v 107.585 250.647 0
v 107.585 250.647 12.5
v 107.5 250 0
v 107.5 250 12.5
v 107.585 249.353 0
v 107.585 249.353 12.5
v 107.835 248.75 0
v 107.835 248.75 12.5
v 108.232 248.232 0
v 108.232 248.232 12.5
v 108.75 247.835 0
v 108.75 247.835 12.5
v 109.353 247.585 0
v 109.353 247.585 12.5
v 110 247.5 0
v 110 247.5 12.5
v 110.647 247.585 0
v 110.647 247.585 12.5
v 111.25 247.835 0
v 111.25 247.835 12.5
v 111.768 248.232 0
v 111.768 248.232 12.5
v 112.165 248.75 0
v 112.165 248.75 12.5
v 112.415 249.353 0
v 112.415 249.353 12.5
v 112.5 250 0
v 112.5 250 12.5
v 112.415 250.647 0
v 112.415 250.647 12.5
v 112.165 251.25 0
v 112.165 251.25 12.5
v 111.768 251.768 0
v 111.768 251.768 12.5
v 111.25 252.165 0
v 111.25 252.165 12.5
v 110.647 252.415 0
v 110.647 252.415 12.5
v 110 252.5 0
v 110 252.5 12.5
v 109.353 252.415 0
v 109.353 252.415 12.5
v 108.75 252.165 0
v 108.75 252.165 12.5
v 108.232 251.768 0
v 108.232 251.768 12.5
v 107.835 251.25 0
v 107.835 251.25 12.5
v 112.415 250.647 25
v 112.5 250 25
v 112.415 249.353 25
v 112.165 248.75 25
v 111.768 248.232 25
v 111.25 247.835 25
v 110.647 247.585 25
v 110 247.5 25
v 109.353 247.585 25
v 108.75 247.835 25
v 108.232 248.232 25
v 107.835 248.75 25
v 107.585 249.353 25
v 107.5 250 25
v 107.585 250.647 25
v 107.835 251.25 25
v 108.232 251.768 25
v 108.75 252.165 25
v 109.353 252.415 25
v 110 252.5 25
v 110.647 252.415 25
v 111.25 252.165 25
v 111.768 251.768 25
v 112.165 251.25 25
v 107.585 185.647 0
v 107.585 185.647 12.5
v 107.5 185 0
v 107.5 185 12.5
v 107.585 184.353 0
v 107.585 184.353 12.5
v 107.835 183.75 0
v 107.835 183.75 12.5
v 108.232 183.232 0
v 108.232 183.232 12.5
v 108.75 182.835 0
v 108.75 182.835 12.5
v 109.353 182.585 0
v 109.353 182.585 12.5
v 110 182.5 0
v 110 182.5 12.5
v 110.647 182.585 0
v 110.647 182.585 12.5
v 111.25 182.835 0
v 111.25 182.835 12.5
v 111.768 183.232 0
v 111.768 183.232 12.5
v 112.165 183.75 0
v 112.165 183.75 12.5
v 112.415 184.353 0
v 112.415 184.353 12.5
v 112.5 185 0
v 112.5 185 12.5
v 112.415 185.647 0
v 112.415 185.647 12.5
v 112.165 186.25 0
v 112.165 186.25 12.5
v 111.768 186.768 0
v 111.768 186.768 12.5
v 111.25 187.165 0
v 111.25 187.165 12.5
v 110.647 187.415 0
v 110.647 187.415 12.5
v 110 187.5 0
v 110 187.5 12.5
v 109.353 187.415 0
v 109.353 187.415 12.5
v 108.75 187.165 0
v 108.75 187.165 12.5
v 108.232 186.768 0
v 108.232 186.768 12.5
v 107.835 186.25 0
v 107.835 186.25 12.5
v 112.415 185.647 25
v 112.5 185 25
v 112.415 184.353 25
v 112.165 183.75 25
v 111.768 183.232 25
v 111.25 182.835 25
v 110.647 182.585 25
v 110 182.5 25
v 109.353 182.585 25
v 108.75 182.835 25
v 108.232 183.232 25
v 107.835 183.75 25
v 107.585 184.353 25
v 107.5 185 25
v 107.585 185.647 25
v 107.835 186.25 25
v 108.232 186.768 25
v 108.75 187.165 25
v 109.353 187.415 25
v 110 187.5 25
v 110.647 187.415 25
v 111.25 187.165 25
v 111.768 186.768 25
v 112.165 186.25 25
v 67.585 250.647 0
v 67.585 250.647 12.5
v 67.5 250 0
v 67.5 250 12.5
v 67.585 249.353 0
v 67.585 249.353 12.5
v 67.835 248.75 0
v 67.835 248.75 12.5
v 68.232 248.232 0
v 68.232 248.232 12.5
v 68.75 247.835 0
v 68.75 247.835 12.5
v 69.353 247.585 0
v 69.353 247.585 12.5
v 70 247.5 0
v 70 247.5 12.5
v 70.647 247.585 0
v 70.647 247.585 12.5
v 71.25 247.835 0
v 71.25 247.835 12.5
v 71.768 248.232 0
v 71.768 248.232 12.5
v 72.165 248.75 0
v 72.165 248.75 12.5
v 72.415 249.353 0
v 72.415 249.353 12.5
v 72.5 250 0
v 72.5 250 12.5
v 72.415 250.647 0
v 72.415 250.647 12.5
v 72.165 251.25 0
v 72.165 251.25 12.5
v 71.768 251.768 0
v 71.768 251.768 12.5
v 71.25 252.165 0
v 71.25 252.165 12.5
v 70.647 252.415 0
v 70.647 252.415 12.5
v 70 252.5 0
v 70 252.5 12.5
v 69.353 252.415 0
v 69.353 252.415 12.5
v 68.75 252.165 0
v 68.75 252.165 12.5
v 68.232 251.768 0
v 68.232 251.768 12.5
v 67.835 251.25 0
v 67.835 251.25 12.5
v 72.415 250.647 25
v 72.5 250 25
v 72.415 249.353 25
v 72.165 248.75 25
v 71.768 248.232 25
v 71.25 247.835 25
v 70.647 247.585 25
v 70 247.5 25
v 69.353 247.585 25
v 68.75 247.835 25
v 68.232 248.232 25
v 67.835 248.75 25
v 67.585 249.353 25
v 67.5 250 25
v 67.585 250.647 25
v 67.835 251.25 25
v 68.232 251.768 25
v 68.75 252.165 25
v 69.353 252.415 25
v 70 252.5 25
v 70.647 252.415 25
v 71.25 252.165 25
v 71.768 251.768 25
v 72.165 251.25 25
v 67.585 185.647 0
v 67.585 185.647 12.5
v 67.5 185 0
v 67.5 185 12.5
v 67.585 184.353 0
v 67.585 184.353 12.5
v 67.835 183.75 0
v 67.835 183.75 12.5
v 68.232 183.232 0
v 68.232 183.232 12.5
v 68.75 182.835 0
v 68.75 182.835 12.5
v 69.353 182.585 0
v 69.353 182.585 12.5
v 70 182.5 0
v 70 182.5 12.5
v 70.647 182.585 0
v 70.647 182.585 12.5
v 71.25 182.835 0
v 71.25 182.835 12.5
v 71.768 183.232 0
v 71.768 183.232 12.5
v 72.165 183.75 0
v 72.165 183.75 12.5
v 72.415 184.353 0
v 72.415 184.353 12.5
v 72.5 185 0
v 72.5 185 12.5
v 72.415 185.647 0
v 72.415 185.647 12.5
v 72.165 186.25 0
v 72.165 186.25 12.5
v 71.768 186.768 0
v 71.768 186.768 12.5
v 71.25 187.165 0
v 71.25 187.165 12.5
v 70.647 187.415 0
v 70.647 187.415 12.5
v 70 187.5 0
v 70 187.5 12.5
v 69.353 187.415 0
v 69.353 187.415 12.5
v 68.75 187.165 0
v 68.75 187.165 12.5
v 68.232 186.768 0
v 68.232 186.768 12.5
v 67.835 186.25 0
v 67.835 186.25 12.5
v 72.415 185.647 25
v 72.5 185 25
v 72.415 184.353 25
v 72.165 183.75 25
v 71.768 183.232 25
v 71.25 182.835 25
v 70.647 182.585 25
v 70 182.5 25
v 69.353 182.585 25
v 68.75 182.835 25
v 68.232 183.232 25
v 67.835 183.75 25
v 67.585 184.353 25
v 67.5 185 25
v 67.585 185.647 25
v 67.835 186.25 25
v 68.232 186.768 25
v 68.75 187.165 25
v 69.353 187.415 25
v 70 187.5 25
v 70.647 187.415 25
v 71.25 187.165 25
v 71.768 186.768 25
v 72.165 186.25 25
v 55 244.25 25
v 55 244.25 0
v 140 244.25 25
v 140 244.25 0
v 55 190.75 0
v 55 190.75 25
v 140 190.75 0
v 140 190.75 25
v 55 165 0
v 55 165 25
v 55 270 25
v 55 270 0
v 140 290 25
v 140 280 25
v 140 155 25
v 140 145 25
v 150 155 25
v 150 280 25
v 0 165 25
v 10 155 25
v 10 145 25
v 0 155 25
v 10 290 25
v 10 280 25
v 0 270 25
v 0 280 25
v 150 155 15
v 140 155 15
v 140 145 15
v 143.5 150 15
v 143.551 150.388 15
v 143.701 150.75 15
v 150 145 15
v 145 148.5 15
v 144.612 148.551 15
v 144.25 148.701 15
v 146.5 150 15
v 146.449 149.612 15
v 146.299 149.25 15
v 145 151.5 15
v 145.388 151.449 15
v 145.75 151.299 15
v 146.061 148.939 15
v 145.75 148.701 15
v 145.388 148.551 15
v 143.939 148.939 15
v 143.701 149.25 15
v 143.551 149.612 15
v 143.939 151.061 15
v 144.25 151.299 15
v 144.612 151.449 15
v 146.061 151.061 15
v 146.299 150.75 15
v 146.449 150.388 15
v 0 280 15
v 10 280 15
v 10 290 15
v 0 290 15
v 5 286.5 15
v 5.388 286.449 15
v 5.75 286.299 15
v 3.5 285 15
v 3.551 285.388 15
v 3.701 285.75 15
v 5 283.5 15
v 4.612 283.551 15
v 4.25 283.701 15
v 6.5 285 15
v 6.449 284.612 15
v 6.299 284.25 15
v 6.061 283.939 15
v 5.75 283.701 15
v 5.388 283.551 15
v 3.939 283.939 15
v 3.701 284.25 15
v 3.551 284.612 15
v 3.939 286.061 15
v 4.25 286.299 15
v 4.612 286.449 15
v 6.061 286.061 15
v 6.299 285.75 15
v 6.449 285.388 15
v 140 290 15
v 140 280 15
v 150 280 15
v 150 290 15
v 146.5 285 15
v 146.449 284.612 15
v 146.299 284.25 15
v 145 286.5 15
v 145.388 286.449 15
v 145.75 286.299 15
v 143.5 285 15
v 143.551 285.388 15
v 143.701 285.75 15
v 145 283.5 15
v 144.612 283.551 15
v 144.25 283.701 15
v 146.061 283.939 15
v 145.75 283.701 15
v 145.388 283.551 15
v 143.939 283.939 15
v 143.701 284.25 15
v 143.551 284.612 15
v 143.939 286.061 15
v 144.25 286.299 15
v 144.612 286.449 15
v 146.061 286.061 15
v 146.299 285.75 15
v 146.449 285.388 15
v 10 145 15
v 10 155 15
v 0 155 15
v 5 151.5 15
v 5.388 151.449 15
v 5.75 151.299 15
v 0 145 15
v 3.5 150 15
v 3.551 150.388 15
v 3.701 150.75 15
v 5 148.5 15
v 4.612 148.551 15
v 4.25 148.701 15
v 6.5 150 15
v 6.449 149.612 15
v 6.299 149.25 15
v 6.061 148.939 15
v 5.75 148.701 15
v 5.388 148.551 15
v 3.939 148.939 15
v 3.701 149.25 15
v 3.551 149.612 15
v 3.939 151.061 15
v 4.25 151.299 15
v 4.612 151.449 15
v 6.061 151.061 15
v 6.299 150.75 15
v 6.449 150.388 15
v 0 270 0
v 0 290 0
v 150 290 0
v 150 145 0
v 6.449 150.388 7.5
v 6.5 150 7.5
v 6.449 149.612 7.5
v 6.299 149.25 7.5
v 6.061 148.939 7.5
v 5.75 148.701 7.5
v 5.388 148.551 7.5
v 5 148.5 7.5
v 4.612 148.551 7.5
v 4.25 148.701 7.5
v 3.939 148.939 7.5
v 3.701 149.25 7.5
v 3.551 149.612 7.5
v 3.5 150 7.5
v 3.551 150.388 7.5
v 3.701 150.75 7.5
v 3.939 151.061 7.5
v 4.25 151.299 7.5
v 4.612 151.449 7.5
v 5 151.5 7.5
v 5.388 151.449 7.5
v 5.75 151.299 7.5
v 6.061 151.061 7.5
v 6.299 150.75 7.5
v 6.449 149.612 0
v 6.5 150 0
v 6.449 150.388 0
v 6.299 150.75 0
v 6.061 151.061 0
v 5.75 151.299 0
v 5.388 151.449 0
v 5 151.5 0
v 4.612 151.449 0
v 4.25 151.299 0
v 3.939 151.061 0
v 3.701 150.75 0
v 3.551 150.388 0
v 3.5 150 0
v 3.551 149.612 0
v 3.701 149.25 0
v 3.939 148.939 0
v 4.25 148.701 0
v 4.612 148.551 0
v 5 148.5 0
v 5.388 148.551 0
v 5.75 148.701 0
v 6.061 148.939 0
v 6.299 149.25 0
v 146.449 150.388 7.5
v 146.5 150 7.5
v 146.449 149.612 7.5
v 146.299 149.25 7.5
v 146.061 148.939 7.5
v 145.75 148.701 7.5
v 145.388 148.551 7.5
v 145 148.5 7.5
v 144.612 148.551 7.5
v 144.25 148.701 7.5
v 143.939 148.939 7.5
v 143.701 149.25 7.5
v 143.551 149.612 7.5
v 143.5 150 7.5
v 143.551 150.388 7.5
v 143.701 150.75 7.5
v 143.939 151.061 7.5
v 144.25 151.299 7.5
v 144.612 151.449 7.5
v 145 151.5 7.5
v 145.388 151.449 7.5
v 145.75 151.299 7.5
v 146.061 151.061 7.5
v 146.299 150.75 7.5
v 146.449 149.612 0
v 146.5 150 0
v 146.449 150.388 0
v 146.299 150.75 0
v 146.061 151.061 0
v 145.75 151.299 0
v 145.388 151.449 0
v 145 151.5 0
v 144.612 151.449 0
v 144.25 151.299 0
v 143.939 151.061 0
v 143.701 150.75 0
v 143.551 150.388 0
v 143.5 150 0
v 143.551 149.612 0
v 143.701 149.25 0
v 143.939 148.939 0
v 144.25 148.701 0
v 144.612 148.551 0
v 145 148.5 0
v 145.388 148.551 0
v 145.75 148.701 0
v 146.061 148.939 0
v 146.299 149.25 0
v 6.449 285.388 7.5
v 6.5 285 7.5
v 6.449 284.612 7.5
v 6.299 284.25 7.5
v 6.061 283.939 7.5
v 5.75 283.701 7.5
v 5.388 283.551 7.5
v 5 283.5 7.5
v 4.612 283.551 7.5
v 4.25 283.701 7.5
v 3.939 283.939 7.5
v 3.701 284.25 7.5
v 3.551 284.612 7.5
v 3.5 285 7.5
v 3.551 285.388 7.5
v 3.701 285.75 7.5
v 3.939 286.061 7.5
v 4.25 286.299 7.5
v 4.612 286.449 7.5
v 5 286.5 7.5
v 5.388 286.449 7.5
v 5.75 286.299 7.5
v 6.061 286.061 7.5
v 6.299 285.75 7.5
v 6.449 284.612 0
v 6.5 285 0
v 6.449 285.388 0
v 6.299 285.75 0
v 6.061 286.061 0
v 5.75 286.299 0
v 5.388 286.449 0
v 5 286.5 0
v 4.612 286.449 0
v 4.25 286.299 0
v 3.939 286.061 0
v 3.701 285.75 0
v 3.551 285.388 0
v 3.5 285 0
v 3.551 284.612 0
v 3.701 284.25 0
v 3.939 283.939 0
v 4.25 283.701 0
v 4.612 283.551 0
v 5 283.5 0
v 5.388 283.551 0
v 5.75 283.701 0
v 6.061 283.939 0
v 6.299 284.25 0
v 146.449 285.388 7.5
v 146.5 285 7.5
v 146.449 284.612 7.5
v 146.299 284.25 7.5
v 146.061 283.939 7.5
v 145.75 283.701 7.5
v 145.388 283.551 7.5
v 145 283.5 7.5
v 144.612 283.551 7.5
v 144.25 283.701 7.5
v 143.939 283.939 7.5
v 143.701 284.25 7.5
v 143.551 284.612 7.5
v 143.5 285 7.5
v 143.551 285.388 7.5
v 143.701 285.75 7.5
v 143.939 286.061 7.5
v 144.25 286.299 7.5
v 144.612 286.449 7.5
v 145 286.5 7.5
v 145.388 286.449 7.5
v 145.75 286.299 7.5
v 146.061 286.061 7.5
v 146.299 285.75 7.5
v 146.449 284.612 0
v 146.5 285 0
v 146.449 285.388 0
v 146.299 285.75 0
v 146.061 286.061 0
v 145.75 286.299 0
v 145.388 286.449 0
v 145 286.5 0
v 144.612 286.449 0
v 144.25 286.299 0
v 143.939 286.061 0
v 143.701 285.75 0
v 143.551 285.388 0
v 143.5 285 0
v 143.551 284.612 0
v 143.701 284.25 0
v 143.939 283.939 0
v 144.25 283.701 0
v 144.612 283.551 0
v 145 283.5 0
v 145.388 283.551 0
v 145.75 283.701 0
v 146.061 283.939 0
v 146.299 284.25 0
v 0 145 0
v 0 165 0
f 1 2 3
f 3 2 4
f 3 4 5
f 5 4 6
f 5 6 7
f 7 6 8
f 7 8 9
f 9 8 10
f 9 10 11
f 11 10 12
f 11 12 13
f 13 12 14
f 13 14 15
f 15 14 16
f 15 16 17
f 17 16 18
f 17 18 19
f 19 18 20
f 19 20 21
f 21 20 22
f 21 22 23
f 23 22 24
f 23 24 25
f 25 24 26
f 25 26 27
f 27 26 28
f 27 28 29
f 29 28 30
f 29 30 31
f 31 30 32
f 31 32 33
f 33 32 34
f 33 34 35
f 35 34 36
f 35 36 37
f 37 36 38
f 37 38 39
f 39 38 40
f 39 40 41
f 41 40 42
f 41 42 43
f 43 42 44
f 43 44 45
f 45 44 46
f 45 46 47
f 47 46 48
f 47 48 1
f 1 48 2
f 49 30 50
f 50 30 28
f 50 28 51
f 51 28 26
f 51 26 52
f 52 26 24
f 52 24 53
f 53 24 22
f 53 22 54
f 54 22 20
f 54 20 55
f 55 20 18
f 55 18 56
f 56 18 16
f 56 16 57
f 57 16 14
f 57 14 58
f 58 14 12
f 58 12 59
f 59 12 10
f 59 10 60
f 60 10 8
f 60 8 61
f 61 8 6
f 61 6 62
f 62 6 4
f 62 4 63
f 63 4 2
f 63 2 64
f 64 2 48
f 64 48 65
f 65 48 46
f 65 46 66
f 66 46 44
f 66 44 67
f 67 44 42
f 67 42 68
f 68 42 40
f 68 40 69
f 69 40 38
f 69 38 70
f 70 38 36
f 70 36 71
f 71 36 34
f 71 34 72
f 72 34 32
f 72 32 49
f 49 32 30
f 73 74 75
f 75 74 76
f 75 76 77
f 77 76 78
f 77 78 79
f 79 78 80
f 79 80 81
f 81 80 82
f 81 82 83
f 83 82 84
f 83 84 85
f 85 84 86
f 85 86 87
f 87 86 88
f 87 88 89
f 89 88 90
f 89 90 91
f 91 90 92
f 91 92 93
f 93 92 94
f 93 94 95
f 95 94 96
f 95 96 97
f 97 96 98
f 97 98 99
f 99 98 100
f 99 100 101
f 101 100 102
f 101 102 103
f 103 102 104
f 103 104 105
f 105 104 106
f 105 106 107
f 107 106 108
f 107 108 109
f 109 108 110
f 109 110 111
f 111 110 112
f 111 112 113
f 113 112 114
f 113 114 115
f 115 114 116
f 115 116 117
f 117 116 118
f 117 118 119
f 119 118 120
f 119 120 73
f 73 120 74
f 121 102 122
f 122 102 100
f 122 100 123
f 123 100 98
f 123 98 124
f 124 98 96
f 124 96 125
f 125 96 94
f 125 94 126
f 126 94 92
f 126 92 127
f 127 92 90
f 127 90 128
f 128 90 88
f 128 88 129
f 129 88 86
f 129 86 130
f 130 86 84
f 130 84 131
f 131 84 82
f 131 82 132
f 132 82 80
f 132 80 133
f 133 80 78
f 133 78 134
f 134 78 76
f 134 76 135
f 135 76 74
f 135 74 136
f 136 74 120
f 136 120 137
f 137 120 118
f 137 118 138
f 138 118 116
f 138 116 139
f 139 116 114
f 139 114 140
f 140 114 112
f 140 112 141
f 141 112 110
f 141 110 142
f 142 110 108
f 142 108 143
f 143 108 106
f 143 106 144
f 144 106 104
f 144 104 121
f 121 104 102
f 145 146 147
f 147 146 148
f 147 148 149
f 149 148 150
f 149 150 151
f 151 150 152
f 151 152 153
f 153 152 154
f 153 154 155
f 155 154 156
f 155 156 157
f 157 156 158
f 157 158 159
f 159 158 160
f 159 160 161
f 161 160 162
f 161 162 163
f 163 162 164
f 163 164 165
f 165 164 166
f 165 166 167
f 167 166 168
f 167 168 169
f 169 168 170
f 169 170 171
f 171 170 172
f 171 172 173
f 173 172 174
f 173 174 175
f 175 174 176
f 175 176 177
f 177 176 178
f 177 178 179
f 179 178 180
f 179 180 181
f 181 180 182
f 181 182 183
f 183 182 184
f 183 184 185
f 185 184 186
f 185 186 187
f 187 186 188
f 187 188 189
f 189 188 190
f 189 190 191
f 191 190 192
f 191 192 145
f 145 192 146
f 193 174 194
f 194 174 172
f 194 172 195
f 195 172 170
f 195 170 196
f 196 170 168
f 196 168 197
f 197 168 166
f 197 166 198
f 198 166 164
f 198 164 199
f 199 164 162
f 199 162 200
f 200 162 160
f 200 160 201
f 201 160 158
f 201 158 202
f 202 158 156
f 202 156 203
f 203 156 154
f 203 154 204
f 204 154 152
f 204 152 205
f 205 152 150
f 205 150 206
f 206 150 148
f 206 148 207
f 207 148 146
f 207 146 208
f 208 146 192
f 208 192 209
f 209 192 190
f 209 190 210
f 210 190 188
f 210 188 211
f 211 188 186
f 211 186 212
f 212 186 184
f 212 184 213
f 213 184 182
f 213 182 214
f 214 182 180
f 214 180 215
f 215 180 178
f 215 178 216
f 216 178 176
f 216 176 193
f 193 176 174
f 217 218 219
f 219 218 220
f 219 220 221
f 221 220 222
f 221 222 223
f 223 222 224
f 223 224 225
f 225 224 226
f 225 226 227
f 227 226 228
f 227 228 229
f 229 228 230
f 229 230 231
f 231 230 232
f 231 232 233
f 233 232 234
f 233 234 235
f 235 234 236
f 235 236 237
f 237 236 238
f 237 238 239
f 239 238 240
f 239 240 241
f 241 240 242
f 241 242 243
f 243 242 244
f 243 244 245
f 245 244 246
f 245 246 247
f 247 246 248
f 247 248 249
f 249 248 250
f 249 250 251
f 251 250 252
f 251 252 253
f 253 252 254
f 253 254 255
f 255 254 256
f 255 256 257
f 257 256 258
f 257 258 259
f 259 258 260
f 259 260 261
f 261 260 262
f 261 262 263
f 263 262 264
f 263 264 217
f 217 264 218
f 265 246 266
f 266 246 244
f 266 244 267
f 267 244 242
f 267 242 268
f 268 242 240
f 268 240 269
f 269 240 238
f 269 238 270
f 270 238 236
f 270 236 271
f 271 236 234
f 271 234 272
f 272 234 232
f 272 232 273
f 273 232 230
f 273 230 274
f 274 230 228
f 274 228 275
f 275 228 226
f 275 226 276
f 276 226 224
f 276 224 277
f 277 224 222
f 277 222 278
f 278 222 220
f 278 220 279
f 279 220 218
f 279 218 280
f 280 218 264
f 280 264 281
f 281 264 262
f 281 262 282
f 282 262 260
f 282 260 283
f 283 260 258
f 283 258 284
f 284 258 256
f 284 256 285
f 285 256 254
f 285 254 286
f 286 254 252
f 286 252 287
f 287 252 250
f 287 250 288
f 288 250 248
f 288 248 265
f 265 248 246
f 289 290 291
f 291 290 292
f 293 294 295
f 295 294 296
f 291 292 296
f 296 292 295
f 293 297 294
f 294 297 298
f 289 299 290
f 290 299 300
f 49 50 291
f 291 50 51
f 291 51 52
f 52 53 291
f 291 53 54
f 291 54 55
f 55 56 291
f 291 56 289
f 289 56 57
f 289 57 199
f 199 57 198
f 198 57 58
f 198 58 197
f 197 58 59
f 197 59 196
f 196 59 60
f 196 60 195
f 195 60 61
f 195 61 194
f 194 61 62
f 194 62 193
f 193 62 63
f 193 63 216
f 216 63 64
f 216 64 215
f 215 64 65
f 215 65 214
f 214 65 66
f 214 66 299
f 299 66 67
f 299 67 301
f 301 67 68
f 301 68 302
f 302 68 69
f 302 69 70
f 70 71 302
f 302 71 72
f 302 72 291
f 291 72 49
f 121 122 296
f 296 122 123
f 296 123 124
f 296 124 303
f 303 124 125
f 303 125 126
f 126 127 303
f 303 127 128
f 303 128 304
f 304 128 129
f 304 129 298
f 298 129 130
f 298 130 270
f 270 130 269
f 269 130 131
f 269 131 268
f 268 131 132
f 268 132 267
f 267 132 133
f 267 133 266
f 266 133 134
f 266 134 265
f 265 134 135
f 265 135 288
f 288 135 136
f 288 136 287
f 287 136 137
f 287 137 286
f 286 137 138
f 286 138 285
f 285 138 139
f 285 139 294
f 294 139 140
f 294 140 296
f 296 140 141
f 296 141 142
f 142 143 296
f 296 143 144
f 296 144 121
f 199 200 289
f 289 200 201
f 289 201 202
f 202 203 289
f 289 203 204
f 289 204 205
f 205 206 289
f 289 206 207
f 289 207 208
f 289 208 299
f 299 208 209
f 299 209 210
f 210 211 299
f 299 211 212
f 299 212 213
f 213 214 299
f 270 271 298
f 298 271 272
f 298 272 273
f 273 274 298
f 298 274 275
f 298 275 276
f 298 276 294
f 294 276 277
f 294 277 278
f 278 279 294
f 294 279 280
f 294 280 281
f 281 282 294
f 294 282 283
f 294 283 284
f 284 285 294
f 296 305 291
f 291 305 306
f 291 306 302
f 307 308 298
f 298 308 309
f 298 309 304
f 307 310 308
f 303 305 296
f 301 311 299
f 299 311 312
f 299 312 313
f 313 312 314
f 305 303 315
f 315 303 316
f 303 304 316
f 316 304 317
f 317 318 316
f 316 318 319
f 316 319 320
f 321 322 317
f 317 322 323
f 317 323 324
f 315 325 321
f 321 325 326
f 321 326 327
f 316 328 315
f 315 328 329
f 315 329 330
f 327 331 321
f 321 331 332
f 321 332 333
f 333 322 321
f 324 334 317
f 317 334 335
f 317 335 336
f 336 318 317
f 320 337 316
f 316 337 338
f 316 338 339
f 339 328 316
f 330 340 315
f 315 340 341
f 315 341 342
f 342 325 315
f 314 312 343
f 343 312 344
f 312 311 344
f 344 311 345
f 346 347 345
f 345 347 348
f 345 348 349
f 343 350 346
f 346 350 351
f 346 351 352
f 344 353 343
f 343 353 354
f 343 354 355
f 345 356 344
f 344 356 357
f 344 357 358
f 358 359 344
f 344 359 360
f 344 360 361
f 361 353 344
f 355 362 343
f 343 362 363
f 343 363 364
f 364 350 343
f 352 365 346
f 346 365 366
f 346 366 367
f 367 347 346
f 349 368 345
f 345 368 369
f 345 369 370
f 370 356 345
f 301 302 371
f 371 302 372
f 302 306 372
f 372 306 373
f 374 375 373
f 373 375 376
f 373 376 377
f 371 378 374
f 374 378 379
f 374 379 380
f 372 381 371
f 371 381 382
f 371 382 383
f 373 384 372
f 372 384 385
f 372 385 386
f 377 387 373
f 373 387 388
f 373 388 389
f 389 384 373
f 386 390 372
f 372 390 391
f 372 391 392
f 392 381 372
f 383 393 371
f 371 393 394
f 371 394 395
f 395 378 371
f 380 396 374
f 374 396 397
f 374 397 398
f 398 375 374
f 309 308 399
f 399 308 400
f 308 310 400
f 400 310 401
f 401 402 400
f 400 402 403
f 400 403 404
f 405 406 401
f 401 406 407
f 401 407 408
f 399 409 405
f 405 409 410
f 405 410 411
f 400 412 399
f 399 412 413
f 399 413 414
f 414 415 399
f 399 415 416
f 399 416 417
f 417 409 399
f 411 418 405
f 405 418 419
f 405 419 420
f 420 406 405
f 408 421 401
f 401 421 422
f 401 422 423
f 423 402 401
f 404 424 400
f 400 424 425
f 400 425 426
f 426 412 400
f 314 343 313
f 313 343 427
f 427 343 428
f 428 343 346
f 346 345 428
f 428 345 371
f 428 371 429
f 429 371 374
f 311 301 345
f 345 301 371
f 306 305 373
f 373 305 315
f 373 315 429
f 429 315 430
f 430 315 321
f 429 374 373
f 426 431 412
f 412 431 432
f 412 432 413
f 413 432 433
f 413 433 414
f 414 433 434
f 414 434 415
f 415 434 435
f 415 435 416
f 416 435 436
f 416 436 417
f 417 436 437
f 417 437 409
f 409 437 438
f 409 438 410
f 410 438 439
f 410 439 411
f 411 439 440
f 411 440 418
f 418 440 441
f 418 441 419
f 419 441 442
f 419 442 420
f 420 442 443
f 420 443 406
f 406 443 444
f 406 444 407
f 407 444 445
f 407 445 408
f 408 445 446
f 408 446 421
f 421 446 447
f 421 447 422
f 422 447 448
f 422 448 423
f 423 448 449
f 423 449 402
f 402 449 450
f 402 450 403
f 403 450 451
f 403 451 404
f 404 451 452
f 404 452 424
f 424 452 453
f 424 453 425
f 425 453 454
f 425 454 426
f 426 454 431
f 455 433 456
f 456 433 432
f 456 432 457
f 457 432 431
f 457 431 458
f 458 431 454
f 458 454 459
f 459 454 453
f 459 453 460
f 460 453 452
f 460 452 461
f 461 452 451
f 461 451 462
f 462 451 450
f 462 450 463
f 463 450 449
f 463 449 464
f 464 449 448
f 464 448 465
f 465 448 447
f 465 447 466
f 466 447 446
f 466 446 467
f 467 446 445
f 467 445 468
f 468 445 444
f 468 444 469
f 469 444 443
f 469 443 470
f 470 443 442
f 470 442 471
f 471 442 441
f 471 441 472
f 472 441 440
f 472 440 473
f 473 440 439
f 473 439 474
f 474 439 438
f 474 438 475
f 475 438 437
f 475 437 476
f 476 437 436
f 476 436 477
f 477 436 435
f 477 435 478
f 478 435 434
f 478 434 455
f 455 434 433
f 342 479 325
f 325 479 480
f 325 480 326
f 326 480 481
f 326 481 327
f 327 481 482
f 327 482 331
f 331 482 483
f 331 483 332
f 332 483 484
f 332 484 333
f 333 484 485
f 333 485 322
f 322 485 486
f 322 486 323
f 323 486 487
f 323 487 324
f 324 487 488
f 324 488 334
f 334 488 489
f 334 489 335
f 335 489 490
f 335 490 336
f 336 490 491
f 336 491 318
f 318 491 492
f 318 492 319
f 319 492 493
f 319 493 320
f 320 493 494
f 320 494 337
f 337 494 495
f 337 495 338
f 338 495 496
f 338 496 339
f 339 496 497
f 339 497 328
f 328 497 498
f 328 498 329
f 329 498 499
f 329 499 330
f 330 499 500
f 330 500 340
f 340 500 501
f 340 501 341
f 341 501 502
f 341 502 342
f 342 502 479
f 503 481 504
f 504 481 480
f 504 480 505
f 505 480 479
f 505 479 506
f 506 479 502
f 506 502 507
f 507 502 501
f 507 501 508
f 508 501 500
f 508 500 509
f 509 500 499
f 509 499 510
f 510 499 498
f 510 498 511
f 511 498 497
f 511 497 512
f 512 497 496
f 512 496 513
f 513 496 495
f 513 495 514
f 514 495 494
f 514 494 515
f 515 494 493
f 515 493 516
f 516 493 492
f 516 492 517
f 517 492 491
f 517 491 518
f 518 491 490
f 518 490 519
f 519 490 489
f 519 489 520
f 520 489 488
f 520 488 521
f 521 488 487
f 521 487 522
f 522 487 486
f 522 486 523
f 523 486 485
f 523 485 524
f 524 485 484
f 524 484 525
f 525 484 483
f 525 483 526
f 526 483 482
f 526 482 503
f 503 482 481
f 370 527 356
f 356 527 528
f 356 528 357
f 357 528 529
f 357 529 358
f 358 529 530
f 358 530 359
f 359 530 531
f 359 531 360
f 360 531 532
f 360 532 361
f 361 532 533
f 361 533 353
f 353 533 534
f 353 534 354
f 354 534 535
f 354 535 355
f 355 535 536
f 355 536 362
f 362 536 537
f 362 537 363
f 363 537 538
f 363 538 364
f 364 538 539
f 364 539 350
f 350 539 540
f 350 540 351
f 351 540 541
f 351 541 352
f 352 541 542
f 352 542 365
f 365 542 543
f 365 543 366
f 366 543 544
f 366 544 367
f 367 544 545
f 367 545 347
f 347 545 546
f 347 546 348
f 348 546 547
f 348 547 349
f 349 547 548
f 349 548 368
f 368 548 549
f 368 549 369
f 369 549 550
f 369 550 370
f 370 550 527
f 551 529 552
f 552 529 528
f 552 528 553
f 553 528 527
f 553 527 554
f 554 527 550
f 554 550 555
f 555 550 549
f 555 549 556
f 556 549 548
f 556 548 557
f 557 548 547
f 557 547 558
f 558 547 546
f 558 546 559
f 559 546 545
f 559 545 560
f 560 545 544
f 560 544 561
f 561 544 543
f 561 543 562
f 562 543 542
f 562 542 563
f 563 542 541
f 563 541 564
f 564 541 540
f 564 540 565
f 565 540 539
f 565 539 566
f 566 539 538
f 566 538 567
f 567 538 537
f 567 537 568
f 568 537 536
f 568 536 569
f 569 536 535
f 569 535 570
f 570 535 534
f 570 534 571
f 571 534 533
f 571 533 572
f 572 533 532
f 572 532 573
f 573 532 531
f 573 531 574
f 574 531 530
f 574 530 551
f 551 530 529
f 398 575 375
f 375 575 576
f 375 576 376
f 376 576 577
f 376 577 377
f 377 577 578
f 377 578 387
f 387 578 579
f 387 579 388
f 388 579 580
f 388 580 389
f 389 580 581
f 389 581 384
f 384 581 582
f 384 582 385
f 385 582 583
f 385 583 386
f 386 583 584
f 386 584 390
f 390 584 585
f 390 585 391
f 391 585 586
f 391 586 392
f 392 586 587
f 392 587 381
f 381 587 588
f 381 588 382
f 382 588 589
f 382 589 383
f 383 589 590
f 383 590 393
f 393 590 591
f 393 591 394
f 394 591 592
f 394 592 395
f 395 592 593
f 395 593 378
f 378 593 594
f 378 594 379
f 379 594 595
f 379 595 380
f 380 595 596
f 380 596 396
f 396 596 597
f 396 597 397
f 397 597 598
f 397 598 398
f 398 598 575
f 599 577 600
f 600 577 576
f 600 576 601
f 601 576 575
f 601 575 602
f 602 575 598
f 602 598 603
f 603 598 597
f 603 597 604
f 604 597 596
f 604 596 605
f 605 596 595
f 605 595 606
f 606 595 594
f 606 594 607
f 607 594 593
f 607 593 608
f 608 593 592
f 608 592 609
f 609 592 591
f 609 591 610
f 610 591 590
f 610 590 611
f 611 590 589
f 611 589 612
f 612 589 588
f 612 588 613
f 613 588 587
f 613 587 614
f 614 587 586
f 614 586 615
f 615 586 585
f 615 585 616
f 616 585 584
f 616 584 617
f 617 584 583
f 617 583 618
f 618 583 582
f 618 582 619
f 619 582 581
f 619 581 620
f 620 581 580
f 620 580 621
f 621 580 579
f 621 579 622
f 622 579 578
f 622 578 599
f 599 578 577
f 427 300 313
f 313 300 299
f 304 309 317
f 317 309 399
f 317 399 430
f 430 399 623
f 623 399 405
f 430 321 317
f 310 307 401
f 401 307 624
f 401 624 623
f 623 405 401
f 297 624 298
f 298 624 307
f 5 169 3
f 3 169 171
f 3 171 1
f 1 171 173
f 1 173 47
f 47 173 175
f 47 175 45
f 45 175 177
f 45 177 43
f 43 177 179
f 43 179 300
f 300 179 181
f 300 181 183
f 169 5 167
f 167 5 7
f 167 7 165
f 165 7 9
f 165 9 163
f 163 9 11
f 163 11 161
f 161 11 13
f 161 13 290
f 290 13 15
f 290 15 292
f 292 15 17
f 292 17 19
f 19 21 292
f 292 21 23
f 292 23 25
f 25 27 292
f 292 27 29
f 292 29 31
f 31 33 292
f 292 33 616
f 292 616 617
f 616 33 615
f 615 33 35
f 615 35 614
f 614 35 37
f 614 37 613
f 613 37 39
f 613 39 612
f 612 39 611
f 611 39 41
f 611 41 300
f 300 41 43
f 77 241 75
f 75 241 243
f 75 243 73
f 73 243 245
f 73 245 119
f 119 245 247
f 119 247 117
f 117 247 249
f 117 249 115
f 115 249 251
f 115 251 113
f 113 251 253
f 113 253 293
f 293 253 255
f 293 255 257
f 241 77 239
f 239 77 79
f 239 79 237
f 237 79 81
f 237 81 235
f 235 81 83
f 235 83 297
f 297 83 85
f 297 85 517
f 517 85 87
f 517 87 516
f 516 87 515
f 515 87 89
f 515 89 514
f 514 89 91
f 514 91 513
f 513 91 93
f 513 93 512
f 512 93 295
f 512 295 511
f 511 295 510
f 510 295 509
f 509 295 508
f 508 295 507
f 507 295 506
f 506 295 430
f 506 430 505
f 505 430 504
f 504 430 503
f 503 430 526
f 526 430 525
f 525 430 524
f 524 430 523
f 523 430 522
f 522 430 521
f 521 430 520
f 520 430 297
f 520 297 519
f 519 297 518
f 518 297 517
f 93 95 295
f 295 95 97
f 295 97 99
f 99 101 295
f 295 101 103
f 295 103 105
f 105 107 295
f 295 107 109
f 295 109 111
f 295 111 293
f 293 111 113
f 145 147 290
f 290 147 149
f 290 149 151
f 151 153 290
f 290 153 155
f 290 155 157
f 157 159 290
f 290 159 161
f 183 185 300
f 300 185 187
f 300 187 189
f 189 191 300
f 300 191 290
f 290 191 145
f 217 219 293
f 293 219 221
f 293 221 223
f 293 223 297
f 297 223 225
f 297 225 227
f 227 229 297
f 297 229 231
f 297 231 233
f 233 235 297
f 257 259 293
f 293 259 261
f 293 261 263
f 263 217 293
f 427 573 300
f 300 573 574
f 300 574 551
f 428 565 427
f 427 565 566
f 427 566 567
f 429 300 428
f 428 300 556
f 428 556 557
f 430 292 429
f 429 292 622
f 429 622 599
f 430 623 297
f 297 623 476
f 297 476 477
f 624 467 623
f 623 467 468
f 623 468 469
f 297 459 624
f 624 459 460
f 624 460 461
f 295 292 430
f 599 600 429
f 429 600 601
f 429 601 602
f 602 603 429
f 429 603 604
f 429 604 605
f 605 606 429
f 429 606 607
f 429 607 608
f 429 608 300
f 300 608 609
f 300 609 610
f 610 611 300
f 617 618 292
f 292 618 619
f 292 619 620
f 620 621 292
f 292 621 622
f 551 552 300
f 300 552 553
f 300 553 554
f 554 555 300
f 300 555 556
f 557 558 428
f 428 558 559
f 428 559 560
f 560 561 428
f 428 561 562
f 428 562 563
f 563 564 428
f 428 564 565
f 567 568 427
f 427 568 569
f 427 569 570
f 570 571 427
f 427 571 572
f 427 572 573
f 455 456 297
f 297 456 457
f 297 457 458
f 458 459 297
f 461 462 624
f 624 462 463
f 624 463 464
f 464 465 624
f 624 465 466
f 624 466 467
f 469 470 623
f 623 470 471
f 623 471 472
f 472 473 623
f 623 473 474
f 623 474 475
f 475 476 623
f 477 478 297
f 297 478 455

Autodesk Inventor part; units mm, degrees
ref_plane "YZ Plane" through (0, 0, 0) normal (1, 0, 0) x (0, 1, 0)
ref_plane "XZ Plane" through (0, 0, 0) normal (0, 1, 0) x (-1, 0, 0)
ref_plane "XY Plane" through (0, 0, 0) normal (0, 0, 1) x (1, 0, 0)
sketch "스케치1" plane through (0, 0, 0) normal (0, 0, 1) x (1, 0, 0)
  line L0 (0, 0) -> (300, 0)
  line L1 (300, 0) -> (300, 290)
  line L2 (300, 290) -> (0, 290)
  line L3 (0, 290) -> (0, 0)
  line L4 (300, 270) -> (245, 270)
  line L5 (245, 270) -> (245, 165)
  line L6 (245, 165) -> (300, 165)
  line L7 (300, 165) -> (300, 270)
  line L8 (150, 290) -> (150, 145)
  line L9 (0, 270) -> (55, 270)
  line L10 (55, 270) -> (55, 165)
  line L11 (55, 165) -> (0, 165)
  line L12 (300, 145) -> (150, 145)
  line L13 (300, 20) -> (245, 20)
  line L14 (245, 20) -> (245, 125)
  line L15 (245, 125) -> (300, 125)
  line L16 (55, 125) -> (0, 125)
  line L17 (55, 20) -> (55, 125)
  line L18 (0, 20) -> (55, 20)
  line L19 (0, 145) -> (150, 145)
  circle A0 centre (5, 150) radius 1.5
  circle A1 centre (145, 150) radius 1.5
  circle A2 centre (5, 285) radius 1.5
  circle A3 centre (145, 285) radius 1.5
  point P0 (300, 165)
  point P1 (0, 165)
  dimension "d0" = 290
  dimension "d1" = 300
  dimension "d12" = 105
  dimension "d13" = 55
  dimension "d14" = 20
  dimension "d18" = 5
  dimension "d19" = 3
  dimension "d20" = 5
  dimension "d21" = 5
  dimension "d22" = 5
extrude "돌출1" add sketch "스케치1" along normal blind 25 contours L3 L11 L10 L9 L2 L8 L19
sketch "스케치3" plane through (0, 0, 25) normal (0, 0, 1) x (1, 0, 0)
  line L0 (55, 165) -> (0, 165) projected
  line L1 (0, 165) -> (0, 145) projected
  line L2 (0, 145) -> (150, 145) projected
  line L3 (150, 145) -> (150, 290) projected
  line L4 (150, 290) -> (0, 290) projected
  line L5 (0, 290) -> (0, 270) projected
  line L6 (0, 270) -> (55, 270) projected
  line L7 (55, 270) -> (55, 165) projected
  circle A0 centre (145, 285) radius 1.5 projected
  circle A1 centre (5, 285) radius 1.5 projected
  circle A2 centre (145, 150) radius 1.5 projected
  circle A3 centre (5, 150) radius 1.5 projected
  line L8 (140, 145) -> (140, 290)
  line L9 (140, 155) -> (150, 155)
  line L10 (140, 280) -> (150, 280)
  line L11 (0, 155) -> (10, 155)
  line L12 (10, 155) -> (10, 145)
  line L13 (0, 280) -> (10, 280)
  line L14 (10, 280) -> (10, 290)
  point P0 (0, 0)
  dimension "d23" = 10
  dimension "d24" = 10
  dimension "d25" = 10
extrude "돌출3" cut sketch "스케치3" against normal blind 10 contours L11 L12 L2 L1 | L5 L4 L14 L13 | L8 L9 L3 L2 | L4 L3 L10 L8
sketch "스케치4" plane through (55, 165, 0) normal (-1, 0, 0) x (0, 0, 1)
  line L0 (22, 11) -> (22, 94)
  line L1 (22, 94) -> (0, 94)
  line L2 (0, 105) -> (0, 0) projected
  line L3 (0, 0) -> (25, 0) projected
  line L4 (25, 105) -> (25, 0) projected
  line L5 (0, 105) -> (25, 105) projected
  line L6 (22, 11) -> (0, 11)
  circle A0 centre (14.25, 17) radius 2.5
  circle A1 centre (14.25, 88) radius 2.5
  line L7 (0, 25.75) -> (0, 79.25)
  line L8 (0, 25.75) -> (25, 25.75)
  line L9 (0, 79.25) -> (25, 79.25)
  line L10 (6.5, 11) -> (6.5, 94)
  point P0 (0, -165)
  point P1 (22, 52.5)
  point P2 (25, 52.5)
  point P3 (0, 52.5)
  point P4 (6.5, 79.25)
  point P5 (22, 79.25)
  point P6 (6.5, 25.75)
  point P7 (22, 25.75)
  dimension "d28" = 83
  dimension "d30" = 5
  dimension "d31" = 5
  dimension "d33" = 6
  dimension "d34" = 6
  dimension "d35" = 53.5
  dimension "d36" = 15.5
  dimension "d37" = 7.75
  dimension "d39" = 3
extrude "돌출5" cut sketch "스케치4" against normal blind 85 contours L8 L10 L9 L0 | L0 L9 L4 L8 | L8 L2 L9 L10
sketch "스케치5" plane through (0, 0, 25) normal (0, 0, 1) x (1, 0, 0)
  line L0 (55, 244.25) -> (140, 244.25) projected
  line L1 (140, 244.25) -> (140, 190.75) projected
  line L2 (140, 190.75) -> (55, 190.75) projected
  line L3 (55, 190.75) -> (55, 165) projected
  line L4 (55, 165) -> (0, 165) projected
  line L5 (0, 165) -> (0, 155) projected
  line L6 (0, 155) -> (10, 155) projected
  line L7 (10, 155) -> (10, 145) projected
  line L8 (10, 145) -> (140, 145) projected
  line L9 (140, 145) -> (140, 155) projected
  line L10 (140, 155) -> (150, 155) projected
  line L11 (150, 155) -> (150, 280) projected
  line L12 (150, 280) -> (140, 280) projected
  line L13 (140, 280) -> (140, 290) projected
  line L14 (140, 290) -> (10, 290) projected
  line L15 (10, 290) -> (10, 280) projected
  line L16 (10, 280) -> (0, 280) projected
  line L17 (0, 280) -> (0, 270) projected
  line L18 (0, 270) -> (55, 270) projected
  line L19 (55, 270) -> (55, 244.25) projected
  circle A0 centre (70, 185) radius 2.5
  circle A1 centre (70, 250) radius 2.5
  circle A2 centre (110, 185) radius 2.5
  circle A3 centre (110, 250) radius 2.5
  point P0 (0, 0)
  point P1 (140, 217.5)
  dimension "d47" = 15
  dimension "d48" = 65
  dimension "d49" = 32.5
  dimension "d50" = 5
  dimension "d51" = 65
  dimension "d52" = 5
  dimension "d53" = 40
extrude "돌출7" cut sketch "스케치5" against normal through all contours A0 | A1 | A2 | A3
equation "\"d20\" = d18"
equation "\"d21\" = d20"
equation "\"d22\" = d21"
equation "\"d37\" = 0.5 * d36"
equation "\"d49\" = 0.5 * d48"
properties part number "RobotBase_3D 인쇄"
